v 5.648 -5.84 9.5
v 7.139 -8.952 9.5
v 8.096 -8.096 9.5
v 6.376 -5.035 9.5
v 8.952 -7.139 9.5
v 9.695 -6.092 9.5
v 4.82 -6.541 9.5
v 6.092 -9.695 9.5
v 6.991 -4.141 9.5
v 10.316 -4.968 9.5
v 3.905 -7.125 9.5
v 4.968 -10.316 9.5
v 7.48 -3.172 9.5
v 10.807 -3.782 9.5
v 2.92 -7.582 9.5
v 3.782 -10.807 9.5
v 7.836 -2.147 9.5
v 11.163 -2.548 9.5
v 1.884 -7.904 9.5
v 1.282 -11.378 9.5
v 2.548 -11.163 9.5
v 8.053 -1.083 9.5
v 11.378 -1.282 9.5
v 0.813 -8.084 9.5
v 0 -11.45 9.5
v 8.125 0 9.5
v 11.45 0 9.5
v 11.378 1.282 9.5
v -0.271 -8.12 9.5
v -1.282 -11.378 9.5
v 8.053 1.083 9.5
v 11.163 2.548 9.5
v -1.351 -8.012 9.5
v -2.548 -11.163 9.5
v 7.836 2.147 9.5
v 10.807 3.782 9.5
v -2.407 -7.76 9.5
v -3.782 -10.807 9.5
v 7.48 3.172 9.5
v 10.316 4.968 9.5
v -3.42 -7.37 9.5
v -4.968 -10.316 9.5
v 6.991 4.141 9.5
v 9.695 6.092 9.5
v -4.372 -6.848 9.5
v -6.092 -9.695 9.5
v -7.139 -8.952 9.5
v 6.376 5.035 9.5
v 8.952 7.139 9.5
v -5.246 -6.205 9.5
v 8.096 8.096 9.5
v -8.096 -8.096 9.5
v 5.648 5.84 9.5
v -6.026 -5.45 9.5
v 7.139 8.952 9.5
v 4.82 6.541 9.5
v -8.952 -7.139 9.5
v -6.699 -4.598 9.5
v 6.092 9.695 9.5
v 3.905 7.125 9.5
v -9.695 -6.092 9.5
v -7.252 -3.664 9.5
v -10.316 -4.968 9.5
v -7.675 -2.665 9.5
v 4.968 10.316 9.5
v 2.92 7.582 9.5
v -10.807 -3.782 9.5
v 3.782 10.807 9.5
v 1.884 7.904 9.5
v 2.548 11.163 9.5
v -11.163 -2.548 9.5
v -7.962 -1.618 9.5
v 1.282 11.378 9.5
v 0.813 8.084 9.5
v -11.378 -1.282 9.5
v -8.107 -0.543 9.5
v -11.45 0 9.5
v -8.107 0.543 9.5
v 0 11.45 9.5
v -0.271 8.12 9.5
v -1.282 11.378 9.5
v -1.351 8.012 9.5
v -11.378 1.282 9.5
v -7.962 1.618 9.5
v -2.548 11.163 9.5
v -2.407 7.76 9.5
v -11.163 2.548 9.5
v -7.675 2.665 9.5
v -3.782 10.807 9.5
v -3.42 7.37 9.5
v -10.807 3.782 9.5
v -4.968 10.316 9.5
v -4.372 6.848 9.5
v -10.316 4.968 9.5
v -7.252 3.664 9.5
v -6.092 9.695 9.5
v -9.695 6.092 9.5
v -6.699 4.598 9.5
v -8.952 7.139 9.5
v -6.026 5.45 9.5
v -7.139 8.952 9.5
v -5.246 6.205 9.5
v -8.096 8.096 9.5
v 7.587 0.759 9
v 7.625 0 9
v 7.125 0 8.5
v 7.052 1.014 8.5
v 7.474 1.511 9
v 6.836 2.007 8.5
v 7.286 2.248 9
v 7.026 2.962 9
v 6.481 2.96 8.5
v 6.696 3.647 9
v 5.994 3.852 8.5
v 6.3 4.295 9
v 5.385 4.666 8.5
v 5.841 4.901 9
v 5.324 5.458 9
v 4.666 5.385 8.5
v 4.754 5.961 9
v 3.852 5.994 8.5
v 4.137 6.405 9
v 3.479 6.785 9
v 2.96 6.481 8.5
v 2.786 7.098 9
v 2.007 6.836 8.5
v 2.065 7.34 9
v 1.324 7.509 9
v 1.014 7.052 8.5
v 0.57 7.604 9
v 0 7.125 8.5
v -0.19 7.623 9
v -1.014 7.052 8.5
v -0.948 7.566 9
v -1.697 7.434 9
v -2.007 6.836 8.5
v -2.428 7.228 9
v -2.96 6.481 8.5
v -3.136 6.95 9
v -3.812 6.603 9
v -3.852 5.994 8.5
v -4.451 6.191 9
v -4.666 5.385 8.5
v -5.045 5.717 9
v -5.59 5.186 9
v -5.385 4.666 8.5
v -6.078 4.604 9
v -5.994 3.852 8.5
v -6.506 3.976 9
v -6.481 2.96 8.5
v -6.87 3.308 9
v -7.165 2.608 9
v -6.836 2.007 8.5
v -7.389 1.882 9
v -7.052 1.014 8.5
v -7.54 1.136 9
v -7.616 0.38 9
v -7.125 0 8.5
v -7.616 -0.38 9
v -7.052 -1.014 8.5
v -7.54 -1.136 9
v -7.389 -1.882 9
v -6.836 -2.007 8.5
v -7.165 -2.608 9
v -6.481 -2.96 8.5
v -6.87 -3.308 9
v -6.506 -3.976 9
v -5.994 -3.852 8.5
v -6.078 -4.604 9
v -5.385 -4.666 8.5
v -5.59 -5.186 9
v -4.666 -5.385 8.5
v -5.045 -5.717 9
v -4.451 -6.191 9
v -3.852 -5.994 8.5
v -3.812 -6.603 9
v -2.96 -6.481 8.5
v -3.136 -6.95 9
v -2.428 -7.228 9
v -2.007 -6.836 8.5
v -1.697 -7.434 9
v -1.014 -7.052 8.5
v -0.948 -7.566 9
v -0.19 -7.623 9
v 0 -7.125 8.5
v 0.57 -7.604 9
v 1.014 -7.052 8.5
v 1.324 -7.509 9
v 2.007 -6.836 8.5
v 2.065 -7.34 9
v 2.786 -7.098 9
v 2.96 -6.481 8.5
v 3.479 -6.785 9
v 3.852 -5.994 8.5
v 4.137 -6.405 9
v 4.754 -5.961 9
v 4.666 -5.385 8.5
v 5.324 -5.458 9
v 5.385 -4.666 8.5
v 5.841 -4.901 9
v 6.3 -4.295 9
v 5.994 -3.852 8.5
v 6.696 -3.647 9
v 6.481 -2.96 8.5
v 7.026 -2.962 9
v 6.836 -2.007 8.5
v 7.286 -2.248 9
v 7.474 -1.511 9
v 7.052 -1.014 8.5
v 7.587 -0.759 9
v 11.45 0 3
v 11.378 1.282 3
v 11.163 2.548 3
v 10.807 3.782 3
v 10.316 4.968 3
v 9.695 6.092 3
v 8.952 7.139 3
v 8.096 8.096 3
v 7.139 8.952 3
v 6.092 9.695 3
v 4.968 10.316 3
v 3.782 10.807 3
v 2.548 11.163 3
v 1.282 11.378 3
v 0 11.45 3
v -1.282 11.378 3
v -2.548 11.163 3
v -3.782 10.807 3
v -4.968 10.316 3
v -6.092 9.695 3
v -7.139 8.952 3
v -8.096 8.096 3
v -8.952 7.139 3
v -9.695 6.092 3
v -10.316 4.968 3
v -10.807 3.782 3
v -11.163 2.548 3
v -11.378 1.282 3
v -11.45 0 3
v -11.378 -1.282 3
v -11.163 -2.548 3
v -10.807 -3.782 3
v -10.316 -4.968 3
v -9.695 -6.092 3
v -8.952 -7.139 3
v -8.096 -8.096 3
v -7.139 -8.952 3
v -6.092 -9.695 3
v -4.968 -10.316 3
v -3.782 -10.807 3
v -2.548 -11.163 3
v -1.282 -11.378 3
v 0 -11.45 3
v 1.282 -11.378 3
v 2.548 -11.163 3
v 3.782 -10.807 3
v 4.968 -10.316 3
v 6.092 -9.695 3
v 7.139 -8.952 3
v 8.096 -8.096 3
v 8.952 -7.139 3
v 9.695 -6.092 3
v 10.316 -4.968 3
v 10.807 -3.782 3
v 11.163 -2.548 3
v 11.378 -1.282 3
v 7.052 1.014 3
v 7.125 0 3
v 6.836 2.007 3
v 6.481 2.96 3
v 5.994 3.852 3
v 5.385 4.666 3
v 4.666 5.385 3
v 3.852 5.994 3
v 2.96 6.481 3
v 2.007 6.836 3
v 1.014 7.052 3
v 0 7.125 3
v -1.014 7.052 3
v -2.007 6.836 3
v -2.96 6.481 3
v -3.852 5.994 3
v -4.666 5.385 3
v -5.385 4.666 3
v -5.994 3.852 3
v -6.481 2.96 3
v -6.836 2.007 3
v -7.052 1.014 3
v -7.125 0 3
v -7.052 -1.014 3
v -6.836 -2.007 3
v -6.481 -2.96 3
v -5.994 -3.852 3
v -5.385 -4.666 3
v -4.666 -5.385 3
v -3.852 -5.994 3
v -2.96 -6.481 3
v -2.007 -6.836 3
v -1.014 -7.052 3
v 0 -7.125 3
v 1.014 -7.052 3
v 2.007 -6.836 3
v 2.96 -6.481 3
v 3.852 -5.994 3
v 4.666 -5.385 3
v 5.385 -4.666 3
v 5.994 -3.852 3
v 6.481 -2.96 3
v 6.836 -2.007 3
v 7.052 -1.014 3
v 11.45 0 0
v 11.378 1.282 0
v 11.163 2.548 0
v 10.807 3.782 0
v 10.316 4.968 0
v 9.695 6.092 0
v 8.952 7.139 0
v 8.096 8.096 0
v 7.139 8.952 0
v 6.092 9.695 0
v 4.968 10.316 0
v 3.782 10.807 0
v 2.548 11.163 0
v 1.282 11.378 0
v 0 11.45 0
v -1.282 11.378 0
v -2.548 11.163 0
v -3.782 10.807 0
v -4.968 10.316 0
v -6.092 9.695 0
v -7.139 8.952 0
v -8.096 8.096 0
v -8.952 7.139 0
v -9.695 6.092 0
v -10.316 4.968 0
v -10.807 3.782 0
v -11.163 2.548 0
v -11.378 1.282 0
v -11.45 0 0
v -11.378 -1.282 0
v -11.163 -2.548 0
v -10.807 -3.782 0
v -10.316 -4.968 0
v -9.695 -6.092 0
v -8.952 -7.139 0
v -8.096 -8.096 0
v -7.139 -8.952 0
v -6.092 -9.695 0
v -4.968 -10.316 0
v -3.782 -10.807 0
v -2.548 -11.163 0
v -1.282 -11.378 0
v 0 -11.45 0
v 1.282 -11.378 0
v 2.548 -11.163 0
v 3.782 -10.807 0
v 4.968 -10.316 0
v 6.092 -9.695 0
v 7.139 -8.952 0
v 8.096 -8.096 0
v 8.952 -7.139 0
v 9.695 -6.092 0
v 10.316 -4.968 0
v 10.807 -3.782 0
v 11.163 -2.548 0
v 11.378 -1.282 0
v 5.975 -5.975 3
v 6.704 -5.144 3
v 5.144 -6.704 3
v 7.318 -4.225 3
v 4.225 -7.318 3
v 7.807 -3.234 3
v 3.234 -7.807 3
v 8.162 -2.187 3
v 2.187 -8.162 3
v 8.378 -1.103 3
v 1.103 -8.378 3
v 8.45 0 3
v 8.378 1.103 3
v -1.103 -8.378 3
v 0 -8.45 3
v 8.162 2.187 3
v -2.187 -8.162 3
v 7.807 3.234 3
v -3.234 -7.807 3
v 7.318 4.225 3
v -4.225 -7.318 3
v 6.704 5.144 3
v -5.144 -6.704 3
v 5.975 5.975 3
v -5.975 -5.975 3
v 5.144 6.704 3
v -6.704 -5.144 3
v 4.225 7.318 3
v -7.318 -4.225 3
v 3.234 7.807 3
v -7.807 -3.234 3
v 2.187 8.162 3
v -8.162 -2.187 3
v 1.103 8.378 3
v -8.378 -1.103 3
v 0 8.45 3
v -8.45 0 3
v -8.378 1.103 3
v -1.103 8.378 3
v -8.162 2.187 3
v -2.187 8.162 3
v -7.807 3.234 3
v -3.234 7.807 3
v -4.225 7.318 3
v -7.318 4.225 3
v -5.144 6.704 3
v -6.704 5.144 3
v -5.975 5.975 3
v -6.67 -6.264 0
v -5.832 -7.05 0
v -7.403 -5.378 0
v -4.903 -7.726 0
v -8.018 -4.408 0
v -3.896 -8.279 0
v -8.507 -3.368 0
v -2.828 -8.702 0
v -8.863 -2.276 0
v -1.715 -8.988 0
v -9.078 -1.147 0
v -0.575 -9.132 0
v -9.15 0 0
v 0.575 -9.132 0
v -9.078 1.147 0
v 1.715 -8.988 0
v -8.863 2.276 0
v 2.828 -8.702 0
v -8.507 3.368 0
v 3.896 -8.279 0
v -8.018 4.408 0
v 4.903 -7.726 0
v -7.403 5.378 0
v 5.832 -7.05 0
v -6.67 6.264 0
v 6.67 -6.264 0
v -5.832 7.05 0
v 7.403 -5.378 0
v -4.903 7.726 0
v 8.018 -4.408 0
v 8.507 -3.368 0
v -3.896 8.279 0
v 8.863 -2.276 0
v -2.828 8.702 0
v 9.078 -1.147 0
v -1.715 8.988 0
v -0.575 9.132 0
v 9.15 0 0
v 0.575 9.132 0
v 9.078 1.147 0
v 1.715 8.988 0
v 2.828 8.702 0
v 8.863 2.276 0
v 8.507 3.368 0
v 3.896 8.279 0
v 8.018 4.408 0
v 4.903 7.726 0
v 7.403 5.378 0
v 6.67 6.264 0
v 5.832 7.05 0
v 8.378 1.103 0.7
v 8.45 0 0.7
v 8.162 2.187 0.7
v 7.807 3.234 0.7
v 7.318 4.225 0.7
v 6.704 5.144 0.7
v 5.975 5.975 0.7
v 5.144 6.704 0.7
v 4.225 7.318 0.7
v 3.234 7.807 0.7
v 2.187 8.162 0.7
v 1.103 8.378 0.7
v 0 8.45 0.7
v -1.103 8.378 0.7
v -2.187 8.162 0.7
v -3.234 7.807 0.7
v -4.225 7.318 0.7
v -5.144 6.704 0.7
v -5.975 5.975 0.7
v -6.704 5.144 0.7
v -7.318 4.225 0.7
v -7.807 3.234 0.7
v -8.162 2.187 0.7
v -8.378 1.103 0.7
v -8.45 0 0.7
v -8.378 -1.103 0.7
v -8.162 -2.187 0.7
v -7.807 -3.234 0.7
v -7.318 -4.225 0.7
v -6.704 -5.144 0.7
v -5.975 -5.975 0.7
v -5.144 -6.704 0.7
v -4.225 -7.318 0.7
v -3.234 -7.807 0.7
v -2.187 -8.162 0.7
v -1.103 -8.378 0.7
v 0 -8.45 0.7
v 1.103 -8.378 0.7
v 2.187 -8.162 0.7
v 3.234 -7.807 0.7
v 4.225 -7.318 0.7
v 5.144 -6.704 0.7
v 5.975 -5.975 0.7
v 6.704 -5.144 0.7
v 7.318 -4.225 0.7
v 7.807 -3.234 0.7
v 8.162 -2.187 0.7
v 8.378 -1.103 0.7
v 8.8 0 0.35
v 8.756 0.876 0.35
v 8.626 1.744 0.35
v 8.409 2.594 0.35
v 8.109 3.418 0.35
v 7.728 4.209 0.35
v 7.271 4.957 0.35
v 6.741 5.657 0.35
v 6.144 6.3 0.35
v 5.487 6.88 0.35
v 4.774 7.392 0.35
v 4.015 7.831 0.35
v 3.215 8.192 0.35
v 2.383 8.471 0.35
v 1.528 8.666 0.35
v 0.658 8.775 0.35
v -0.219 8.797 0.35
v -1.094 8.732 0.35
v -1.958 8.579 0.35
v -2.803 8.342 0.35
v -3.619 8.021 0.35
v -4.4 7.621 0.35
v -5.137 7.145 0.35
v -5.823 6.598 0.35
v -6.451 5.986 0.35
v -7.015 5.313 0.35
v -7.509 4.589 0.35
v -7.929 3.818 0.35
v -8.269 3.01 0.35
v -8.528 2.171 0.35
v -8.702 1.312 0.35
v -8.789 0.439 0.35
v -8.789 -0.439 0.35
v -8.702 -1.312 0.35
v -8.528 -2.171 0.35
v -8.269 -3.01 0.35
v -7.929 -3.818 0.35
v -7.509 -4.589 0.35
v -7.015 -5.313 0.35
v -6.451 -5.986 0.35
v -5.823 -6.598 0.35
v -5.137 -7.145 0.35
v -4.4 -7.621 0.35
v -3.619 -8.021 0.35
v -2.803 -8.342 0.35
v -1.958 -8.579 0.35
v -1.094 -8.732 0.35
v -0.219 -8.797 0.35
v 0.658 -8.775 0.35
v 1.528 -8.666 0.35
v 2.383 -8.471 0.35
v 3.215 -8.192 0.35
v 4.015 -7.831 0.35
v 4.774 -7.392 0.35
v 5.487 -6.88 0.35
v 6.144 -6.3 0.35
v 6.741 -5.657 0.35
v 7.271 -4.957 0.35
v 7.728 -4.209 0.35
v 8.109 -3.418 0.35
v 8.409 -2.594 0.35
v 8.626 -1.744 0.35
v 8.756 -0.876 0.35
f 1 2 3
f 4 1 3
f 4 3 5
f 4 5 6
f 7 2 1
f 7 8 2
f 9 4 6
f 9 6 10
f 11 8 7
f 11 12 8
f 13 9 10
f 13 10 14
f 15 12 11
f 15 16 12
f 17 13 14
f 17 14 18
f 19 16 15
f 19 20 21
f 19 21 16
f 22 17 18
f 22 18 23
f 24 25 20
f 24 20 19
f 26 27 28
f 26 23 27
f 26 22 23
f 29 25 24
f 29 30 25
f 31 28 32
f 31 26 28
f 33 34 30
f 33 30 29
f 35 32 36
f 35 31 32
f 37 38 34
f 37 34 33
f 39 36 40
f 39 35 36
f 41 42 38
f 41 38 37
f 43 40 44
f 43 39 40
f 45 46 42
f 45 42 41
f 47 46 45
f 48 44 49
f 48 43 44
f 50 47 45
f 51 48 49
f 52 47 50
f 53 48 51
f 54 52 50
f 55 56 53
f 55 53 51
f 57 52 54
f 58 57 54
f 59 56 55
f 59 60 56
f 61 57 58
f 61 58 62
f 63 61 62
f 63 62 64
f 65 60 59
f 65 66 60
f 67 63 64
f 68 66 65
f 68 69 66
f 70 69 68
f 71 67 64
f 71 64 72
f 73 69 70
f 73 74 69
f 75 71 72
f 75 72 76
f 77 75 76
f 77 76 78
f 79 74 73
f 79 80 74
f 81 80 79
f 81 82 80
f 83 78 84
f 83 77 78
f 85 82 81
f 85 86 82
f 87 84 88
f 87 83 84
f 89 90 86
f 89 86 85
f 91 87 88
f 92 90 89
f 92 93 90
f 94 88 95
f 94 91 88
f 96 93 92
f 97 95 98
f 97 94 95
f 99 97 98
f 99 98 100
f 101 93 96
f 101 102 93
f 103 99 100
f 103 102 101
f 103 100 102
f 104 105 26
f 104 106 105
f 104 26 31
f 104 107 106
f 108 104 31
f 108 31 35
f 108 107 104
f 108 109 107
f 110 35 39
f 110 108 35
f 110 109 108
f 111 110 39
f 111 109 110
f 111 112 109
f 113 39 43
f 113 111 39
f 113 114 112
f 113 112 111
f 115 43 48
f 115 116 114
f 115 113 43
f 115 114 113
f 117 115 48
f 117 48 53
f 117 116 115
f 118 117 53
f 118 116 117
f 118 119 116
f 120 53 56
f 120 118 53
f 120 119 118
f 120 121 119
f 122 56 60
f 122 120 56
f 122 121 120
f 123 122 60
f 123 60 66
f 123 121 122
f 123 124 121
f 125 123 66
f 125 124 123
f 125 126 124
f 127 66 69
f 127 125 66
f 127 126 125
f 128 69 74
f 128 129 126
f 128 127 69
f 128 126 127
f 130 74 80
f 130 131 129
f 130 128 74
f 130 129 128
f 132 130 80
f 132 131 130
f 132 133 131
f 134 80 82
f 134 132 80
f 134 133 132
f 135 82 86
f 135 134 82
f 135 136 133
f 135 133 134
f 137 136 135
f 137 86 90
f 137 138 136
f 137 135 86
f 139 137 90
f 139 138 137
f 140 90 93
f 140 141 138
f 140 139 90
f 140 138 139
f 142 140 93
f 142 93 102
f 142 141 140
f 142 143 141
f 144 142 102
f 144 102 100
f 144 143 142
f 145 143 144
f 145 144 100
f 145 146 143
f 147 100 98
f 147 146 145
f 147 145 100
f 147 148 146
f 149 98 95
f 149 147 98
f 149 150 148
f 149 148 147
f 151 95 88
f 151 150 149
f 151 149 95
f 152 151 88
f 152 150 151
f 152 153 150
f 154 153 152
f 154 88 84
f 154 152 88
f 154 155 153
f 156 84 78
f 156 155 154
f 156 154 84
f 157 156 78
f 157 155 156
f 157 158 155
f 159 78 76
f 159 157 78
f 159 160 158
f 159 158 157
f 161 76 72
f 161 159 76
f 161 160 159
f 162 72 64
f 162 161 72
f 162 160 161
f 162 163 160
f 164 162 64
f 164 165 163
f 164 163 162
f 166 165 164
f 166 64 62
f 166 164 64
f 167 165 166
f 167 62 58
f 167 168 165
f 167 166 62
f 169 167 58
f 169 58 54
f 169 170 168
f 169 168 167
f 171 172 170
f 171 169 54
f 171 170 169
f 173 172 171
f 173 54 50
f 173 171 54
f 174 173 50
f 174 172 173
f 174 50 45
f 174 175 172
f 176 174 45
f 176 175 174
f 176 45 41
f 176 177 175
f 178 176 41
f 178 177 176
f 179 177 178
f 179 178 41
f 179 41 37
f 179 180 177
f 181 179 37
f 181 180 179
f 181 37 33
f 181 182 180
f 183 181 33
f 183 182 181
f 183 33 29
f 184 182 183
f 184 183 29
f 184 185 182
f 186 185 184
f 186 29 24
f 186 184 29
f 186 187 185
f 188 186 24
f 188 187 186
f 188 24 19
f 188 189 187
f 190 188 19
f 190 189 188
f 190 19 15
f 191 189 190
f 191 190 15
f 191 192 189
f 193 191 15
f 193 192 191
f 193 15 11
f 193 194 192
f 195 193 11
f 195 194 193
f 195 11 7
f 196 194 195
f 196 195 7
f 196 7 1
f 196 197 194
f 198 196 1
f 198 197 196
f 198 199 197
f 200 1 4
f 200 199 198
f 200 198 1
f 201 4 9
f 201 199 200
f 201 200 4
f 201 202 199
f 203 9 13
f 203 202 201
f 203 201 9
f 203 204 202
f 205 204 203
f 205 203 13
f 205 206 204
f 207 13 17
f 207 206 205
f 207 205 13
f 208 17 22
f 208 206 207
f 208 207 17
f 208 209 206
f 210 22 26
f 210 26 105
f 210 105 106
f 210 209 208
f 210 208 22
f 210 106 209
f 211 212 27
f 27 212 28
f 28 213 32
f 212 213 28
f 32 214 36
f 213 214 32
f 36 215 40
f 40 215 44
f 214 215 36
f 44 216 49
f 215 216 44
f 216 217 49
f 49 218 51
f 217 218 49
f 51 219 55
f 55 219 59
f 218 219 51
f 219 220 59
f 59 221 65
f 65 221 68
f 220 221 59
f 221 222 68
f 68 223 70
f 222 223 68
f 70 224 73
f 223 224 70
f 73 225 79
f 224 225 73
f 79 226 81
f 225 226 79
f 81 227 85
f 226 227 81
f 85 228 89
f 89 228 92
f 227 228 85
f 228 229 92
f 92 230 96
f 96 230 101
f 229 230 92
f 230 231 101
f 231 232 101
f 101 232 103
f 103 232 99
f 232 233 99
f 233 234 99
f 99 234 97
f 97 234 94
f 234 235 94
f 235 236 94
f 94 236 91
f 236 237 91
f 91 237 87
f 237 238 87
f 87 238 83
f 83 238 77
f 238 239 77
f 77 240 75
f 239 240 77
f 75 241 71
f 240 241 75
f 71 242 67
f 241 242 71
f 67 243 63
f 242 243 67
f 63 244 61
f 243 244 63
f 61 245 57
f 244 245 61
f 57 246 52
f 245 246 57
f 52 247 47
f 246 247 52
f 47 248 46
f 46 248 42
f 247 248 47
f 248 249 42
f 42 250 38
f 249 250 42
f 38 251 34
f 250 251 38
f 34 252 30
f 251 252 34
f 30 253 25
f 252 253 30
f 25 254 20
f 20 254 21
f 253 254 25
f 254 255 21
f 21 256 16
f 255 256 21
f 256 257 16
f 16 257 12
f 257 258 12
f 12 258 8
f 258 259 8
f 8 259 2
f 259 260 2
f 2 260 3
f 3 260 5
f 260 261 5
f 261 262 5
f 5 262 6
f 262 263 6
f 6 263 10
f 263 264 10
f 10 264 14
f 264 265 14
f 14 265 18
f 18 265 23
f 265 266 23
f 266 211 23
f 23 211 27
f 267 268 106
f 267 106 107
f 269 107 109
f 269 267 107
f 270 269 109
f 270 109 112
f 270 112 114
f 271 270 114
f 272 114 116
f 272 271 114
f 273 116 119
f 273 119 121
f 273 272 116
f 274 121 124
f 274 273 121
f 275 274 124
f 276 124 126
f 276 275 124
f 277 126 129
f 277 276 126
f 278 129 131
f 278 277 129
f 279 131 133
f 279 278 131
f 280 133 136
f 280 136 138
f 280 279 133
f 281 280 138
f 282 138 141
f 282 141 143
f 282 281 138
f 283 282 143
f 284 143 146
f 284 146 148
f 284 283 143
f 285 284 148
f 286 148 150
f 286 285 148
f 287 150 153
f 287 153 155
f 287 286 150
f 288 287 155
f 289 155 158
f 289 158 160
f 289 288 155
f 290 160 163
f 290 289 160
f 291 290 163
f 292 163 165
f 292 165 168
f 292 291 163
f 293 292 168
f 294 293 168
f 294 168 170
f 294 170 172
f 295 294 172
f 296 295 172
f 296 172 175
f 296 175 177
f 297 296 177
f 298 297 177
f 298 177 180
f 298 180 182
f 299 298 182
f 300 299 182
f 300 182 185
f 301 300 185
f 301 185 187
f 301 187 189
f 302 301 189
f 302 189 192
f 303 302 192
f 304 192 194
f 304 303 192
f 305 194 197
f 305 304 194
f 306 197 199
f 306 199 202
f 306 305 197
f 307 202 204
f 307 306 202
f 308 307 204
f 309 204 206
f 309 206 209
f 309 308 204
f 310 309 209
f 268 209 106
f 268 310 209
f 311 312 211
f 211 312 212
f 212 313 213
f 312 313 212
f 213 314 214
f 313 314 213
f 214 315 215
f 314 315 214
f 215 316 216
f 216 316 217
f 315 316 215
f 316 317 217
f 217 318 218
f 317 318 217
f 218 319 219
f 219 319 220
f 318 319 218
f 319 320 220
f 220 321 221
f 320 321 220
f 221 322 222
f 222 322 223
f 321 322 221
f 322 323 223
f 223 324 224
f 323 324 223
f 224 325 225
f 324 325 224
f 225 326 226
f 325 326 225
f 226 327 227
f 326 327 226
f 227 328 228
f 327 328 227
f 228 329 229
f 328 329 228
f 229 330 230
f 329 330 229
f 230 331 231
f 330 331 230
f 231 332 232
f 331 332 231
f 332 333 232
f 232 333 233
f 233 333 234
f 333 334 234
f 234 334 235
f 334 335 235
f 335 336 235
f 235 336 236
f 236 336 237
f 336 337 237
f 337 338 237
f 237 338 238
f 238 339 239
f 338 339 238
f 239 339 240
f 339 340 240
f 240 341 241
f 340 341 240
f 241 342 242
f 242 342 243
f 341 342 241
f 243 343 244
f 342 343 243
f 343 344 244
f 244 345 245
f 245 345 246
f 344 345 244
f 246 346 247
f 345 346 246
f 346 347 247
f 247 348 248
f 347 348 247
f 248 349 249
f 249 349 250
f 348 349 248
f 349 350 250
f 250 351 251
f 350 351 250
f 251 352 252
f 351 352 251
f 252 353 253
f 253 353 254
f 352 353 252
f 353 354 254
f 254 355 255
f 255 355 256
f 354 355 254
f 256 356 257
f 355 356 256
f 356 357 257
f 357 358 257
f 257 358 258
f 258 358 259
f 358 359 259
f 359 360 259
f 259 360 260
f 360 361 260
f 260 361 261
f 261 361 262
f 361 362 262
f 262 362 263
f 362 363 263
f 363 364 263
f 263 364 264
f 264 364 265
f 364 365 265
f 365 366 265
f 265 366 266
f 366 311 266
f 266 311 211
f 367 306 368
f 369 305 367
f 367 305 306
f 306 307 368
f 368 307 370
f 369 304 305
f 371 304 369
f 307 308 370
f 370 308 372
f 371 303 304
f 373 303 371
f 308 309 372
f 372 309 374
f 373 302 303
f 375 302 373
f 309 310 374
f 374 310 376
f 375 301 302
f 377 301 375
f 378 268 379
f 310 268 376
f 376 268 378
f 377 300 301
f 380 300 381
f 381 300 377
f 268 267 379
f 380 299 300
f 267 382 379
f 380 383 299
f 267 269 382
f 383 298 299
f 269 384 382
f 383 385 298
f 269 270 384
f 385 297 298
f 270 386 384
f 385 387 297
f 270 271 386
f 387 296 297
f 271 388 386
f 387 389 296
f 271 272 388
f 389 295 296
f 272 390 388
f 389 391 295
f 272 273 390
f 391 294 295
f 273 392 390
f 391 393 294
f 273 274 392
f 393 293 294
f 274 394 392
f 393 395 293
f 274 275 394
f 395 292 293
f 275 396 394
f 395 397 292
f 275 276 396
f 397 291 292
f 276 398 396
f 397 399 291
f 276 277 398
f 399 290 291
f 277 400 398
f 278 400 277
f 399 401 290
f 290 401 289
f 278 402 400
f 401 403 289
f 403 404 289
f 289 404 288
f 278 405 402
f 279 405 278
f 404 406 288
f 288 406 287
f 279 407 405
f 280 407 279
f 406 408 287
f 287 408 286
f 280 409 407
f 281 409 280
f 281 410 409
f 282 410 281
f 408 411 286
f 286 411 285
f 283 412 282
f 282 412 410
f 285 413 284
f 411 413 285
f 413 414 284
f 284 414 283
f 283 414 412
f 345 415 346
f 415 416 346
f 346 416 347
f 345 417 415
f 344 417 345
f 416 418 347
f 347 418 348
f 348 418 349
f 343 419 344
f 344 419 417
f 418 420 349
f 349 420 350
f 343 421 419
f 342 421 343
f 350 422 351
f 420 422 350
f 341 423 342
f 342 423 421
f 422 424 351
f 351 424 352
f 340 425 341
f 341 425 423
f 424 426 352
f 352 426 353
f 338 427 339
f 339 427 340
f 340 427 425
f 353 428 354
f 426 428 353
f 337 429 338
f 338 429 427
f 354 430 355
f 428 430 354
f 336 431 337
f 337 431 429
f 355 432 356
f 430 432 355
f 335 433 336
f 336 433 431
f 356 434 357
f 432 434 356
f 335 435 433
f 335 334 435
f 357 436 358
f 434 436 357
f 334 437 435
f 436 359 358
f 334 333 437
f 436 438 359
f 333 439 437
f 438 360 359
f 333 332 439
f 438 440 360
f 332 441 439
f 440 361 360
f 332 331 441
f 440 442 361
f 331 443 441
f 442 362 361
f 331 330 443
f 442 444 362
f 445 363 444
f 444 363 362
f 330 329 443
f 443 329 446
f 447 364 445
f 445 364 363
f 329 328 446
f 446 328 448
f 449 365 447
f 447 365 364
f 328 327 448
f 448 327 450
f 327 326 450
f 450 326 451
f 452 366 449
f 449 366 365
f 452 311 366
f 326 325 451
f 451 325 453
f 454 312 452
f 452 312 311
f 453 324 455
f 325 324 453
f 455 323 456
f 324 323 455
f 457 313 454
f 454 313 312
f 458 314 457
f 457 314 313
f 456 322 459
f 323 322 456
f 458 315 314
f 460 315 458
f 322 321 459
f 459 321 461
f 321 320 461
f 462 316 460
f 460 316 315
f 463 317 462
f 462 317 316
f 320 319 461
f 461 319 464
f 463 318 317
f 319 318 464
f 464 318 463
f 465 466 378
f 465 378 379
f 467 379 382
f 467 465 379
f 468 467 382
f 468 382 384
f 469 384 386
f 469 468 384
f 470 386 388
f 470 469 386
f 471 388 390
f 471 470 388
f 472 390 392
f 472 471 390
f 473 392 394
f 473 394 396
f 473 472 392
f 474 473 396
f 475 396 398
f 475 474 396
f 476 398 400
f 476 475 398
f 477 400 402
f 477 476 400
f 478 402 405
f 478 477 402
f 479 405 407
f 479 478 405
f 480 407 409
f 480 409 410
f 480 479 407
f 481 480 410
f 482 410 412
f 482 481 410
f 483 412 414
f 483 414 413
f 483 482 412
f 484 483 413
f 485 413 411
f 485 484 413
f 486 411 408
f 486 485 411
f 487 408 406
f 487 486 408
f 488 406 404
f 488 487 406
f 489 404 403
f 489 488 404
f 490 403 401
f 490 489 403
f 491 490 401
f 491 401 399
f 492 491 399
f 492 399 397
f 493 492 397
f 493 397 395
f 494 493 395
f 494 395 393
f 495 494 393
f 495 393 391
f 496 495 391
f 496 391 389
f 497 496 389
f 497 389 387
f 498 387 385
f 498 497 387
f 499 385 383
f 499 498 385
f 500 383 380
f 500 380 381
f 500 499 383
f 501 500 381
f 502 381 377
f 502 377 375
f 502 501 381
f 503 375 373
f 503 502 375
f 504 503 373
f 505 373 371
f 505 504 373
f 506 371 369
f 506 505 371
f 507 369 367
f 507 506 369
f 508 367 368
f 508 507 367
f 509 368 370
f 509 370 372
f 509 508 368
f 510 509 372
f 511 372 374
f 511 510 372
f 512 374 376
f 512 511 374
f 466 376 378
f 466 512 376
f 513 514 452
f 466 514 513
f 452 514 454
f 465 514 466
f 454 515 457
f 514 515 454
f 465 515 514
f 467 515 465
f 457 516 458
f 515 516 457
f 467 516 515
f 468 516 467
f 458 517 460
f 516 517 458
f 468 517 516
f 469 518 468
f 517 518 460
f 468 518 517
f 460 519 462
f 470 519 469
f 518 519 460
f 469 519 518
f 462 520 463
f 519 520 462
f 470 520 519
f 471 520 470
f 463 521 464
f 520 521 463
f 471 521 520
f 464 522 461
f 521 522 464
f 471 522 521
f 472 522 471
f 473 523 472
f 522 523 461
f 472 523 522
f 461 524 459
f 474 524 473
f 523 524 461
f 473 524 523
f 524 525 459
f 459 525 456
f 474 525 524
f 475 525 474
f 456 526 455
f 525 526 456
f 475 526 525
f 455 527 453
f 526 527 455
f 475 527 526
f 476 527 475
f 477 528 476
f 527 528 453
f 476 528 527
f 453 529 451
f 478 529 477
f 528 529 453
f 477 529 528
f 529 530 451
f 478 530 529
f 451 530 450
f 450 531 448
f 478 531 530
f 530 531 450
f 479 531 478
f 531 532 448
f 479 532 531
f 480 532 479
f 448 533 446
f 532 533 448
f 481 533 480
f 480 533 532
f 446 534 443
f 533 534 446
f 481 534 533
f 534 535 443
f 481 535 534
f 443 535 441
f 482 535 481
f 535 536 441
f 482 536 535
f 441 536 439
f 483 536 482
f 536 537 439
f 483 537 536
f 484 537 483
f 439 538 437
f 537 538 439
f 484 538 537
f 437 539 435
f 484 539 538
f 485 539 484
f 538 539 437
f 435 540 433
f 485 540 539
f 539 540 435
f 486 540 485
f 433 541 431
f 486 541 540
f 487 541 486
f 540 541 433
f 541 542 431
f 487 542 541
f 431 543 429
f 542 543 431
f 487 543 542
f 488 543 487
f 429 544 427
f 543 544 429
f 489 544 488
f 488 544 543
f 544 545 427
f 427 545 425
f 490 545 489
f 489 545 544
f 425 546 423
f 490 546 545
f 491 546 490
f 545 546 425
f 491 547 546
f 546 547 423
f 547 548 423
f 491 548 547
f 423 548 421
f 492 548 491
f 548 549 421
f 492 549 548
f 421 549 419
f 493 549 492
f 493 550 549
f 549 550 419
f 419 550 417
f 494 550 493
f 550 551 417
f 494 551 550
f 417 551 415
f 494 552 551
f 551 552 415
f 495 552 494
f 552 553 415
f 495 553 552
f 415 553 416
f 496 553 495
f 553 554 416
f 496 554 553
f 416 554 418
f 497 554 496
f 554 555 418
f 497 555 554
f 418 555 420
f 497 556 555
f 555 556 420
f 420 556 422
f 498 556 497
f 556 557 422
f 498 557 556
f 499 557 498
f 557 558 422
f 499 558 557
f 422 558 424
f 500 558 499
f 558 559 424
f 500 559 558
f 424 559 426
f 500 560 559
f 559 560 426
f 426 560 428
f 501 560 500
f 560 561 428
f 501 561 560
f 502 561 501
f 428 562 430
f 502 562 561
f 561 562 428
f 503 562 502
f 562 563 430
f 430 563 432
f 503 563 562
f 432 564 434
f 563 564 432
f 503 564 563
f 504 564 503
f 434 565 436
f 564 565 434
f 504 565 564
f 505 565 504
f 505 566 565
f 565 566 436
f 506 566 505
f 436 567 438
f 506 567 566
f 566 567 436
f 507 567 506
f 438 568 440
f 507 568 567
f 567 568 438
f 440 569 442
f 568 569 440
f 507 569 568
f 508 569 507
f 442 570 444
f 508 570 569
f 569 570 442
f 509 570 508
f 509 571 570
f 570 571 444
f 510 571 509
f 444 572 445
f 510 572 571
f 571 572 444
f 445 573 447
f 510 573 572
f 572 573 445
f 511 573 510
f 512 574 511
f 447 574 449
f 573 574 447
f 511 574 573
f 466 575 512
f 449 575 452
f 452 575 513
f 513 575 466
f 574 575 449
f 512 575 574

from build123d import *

# Parameters (mm, degrees)
SKETCH_R        = 11.45
SKETCH_R_2      = 8.45
PAD_DEPTH       = 3
SKETCH001_R     = 11.45
SKETCH001_R_2   = 7.125
PAD001_DEPTH    = 6.5
CHAMFER_SIZE    = 0.7
CHAMFER001_SIZE = 1


with BuildPart() as part:
    # Sketch → Pad (new body)
    with BuildSketch(Plane.XY):
        Circle(SKETCH_R)
        Circle(SKETCH_R_2, mode=Mode.SUBTRACT)
    extrude(amount=PAD_DEPTH)

    # Sketch001 (on Face4 of Pad) → Pad001 (join)
    with BuildSketch(Plane.XY.offset(3)):
        Circle(SKETCH001_R)
        Circle(SKETCH001_R_2, mode=Mode.SUBTRACT)
    extrude(amount=PAD001_DEPTH)

    # Chamfer
    chamfer_edges = [part.edges().sort_by_distance(p)[0] for p in [
        (-8.45, 0, 0),
    ]]
    chamfer(chamfer_edges, length=CHAMFER_SIZE)

    # Chamfer001
    chamfer001_edges = [part.edges().sort_by_distance(p)[0] for p in [
        (-7.125, 0, 9.5),
    ]]
    chamfer(chamfer001_edges, length=CHAMFER001_SIZE)


solid = part.part
